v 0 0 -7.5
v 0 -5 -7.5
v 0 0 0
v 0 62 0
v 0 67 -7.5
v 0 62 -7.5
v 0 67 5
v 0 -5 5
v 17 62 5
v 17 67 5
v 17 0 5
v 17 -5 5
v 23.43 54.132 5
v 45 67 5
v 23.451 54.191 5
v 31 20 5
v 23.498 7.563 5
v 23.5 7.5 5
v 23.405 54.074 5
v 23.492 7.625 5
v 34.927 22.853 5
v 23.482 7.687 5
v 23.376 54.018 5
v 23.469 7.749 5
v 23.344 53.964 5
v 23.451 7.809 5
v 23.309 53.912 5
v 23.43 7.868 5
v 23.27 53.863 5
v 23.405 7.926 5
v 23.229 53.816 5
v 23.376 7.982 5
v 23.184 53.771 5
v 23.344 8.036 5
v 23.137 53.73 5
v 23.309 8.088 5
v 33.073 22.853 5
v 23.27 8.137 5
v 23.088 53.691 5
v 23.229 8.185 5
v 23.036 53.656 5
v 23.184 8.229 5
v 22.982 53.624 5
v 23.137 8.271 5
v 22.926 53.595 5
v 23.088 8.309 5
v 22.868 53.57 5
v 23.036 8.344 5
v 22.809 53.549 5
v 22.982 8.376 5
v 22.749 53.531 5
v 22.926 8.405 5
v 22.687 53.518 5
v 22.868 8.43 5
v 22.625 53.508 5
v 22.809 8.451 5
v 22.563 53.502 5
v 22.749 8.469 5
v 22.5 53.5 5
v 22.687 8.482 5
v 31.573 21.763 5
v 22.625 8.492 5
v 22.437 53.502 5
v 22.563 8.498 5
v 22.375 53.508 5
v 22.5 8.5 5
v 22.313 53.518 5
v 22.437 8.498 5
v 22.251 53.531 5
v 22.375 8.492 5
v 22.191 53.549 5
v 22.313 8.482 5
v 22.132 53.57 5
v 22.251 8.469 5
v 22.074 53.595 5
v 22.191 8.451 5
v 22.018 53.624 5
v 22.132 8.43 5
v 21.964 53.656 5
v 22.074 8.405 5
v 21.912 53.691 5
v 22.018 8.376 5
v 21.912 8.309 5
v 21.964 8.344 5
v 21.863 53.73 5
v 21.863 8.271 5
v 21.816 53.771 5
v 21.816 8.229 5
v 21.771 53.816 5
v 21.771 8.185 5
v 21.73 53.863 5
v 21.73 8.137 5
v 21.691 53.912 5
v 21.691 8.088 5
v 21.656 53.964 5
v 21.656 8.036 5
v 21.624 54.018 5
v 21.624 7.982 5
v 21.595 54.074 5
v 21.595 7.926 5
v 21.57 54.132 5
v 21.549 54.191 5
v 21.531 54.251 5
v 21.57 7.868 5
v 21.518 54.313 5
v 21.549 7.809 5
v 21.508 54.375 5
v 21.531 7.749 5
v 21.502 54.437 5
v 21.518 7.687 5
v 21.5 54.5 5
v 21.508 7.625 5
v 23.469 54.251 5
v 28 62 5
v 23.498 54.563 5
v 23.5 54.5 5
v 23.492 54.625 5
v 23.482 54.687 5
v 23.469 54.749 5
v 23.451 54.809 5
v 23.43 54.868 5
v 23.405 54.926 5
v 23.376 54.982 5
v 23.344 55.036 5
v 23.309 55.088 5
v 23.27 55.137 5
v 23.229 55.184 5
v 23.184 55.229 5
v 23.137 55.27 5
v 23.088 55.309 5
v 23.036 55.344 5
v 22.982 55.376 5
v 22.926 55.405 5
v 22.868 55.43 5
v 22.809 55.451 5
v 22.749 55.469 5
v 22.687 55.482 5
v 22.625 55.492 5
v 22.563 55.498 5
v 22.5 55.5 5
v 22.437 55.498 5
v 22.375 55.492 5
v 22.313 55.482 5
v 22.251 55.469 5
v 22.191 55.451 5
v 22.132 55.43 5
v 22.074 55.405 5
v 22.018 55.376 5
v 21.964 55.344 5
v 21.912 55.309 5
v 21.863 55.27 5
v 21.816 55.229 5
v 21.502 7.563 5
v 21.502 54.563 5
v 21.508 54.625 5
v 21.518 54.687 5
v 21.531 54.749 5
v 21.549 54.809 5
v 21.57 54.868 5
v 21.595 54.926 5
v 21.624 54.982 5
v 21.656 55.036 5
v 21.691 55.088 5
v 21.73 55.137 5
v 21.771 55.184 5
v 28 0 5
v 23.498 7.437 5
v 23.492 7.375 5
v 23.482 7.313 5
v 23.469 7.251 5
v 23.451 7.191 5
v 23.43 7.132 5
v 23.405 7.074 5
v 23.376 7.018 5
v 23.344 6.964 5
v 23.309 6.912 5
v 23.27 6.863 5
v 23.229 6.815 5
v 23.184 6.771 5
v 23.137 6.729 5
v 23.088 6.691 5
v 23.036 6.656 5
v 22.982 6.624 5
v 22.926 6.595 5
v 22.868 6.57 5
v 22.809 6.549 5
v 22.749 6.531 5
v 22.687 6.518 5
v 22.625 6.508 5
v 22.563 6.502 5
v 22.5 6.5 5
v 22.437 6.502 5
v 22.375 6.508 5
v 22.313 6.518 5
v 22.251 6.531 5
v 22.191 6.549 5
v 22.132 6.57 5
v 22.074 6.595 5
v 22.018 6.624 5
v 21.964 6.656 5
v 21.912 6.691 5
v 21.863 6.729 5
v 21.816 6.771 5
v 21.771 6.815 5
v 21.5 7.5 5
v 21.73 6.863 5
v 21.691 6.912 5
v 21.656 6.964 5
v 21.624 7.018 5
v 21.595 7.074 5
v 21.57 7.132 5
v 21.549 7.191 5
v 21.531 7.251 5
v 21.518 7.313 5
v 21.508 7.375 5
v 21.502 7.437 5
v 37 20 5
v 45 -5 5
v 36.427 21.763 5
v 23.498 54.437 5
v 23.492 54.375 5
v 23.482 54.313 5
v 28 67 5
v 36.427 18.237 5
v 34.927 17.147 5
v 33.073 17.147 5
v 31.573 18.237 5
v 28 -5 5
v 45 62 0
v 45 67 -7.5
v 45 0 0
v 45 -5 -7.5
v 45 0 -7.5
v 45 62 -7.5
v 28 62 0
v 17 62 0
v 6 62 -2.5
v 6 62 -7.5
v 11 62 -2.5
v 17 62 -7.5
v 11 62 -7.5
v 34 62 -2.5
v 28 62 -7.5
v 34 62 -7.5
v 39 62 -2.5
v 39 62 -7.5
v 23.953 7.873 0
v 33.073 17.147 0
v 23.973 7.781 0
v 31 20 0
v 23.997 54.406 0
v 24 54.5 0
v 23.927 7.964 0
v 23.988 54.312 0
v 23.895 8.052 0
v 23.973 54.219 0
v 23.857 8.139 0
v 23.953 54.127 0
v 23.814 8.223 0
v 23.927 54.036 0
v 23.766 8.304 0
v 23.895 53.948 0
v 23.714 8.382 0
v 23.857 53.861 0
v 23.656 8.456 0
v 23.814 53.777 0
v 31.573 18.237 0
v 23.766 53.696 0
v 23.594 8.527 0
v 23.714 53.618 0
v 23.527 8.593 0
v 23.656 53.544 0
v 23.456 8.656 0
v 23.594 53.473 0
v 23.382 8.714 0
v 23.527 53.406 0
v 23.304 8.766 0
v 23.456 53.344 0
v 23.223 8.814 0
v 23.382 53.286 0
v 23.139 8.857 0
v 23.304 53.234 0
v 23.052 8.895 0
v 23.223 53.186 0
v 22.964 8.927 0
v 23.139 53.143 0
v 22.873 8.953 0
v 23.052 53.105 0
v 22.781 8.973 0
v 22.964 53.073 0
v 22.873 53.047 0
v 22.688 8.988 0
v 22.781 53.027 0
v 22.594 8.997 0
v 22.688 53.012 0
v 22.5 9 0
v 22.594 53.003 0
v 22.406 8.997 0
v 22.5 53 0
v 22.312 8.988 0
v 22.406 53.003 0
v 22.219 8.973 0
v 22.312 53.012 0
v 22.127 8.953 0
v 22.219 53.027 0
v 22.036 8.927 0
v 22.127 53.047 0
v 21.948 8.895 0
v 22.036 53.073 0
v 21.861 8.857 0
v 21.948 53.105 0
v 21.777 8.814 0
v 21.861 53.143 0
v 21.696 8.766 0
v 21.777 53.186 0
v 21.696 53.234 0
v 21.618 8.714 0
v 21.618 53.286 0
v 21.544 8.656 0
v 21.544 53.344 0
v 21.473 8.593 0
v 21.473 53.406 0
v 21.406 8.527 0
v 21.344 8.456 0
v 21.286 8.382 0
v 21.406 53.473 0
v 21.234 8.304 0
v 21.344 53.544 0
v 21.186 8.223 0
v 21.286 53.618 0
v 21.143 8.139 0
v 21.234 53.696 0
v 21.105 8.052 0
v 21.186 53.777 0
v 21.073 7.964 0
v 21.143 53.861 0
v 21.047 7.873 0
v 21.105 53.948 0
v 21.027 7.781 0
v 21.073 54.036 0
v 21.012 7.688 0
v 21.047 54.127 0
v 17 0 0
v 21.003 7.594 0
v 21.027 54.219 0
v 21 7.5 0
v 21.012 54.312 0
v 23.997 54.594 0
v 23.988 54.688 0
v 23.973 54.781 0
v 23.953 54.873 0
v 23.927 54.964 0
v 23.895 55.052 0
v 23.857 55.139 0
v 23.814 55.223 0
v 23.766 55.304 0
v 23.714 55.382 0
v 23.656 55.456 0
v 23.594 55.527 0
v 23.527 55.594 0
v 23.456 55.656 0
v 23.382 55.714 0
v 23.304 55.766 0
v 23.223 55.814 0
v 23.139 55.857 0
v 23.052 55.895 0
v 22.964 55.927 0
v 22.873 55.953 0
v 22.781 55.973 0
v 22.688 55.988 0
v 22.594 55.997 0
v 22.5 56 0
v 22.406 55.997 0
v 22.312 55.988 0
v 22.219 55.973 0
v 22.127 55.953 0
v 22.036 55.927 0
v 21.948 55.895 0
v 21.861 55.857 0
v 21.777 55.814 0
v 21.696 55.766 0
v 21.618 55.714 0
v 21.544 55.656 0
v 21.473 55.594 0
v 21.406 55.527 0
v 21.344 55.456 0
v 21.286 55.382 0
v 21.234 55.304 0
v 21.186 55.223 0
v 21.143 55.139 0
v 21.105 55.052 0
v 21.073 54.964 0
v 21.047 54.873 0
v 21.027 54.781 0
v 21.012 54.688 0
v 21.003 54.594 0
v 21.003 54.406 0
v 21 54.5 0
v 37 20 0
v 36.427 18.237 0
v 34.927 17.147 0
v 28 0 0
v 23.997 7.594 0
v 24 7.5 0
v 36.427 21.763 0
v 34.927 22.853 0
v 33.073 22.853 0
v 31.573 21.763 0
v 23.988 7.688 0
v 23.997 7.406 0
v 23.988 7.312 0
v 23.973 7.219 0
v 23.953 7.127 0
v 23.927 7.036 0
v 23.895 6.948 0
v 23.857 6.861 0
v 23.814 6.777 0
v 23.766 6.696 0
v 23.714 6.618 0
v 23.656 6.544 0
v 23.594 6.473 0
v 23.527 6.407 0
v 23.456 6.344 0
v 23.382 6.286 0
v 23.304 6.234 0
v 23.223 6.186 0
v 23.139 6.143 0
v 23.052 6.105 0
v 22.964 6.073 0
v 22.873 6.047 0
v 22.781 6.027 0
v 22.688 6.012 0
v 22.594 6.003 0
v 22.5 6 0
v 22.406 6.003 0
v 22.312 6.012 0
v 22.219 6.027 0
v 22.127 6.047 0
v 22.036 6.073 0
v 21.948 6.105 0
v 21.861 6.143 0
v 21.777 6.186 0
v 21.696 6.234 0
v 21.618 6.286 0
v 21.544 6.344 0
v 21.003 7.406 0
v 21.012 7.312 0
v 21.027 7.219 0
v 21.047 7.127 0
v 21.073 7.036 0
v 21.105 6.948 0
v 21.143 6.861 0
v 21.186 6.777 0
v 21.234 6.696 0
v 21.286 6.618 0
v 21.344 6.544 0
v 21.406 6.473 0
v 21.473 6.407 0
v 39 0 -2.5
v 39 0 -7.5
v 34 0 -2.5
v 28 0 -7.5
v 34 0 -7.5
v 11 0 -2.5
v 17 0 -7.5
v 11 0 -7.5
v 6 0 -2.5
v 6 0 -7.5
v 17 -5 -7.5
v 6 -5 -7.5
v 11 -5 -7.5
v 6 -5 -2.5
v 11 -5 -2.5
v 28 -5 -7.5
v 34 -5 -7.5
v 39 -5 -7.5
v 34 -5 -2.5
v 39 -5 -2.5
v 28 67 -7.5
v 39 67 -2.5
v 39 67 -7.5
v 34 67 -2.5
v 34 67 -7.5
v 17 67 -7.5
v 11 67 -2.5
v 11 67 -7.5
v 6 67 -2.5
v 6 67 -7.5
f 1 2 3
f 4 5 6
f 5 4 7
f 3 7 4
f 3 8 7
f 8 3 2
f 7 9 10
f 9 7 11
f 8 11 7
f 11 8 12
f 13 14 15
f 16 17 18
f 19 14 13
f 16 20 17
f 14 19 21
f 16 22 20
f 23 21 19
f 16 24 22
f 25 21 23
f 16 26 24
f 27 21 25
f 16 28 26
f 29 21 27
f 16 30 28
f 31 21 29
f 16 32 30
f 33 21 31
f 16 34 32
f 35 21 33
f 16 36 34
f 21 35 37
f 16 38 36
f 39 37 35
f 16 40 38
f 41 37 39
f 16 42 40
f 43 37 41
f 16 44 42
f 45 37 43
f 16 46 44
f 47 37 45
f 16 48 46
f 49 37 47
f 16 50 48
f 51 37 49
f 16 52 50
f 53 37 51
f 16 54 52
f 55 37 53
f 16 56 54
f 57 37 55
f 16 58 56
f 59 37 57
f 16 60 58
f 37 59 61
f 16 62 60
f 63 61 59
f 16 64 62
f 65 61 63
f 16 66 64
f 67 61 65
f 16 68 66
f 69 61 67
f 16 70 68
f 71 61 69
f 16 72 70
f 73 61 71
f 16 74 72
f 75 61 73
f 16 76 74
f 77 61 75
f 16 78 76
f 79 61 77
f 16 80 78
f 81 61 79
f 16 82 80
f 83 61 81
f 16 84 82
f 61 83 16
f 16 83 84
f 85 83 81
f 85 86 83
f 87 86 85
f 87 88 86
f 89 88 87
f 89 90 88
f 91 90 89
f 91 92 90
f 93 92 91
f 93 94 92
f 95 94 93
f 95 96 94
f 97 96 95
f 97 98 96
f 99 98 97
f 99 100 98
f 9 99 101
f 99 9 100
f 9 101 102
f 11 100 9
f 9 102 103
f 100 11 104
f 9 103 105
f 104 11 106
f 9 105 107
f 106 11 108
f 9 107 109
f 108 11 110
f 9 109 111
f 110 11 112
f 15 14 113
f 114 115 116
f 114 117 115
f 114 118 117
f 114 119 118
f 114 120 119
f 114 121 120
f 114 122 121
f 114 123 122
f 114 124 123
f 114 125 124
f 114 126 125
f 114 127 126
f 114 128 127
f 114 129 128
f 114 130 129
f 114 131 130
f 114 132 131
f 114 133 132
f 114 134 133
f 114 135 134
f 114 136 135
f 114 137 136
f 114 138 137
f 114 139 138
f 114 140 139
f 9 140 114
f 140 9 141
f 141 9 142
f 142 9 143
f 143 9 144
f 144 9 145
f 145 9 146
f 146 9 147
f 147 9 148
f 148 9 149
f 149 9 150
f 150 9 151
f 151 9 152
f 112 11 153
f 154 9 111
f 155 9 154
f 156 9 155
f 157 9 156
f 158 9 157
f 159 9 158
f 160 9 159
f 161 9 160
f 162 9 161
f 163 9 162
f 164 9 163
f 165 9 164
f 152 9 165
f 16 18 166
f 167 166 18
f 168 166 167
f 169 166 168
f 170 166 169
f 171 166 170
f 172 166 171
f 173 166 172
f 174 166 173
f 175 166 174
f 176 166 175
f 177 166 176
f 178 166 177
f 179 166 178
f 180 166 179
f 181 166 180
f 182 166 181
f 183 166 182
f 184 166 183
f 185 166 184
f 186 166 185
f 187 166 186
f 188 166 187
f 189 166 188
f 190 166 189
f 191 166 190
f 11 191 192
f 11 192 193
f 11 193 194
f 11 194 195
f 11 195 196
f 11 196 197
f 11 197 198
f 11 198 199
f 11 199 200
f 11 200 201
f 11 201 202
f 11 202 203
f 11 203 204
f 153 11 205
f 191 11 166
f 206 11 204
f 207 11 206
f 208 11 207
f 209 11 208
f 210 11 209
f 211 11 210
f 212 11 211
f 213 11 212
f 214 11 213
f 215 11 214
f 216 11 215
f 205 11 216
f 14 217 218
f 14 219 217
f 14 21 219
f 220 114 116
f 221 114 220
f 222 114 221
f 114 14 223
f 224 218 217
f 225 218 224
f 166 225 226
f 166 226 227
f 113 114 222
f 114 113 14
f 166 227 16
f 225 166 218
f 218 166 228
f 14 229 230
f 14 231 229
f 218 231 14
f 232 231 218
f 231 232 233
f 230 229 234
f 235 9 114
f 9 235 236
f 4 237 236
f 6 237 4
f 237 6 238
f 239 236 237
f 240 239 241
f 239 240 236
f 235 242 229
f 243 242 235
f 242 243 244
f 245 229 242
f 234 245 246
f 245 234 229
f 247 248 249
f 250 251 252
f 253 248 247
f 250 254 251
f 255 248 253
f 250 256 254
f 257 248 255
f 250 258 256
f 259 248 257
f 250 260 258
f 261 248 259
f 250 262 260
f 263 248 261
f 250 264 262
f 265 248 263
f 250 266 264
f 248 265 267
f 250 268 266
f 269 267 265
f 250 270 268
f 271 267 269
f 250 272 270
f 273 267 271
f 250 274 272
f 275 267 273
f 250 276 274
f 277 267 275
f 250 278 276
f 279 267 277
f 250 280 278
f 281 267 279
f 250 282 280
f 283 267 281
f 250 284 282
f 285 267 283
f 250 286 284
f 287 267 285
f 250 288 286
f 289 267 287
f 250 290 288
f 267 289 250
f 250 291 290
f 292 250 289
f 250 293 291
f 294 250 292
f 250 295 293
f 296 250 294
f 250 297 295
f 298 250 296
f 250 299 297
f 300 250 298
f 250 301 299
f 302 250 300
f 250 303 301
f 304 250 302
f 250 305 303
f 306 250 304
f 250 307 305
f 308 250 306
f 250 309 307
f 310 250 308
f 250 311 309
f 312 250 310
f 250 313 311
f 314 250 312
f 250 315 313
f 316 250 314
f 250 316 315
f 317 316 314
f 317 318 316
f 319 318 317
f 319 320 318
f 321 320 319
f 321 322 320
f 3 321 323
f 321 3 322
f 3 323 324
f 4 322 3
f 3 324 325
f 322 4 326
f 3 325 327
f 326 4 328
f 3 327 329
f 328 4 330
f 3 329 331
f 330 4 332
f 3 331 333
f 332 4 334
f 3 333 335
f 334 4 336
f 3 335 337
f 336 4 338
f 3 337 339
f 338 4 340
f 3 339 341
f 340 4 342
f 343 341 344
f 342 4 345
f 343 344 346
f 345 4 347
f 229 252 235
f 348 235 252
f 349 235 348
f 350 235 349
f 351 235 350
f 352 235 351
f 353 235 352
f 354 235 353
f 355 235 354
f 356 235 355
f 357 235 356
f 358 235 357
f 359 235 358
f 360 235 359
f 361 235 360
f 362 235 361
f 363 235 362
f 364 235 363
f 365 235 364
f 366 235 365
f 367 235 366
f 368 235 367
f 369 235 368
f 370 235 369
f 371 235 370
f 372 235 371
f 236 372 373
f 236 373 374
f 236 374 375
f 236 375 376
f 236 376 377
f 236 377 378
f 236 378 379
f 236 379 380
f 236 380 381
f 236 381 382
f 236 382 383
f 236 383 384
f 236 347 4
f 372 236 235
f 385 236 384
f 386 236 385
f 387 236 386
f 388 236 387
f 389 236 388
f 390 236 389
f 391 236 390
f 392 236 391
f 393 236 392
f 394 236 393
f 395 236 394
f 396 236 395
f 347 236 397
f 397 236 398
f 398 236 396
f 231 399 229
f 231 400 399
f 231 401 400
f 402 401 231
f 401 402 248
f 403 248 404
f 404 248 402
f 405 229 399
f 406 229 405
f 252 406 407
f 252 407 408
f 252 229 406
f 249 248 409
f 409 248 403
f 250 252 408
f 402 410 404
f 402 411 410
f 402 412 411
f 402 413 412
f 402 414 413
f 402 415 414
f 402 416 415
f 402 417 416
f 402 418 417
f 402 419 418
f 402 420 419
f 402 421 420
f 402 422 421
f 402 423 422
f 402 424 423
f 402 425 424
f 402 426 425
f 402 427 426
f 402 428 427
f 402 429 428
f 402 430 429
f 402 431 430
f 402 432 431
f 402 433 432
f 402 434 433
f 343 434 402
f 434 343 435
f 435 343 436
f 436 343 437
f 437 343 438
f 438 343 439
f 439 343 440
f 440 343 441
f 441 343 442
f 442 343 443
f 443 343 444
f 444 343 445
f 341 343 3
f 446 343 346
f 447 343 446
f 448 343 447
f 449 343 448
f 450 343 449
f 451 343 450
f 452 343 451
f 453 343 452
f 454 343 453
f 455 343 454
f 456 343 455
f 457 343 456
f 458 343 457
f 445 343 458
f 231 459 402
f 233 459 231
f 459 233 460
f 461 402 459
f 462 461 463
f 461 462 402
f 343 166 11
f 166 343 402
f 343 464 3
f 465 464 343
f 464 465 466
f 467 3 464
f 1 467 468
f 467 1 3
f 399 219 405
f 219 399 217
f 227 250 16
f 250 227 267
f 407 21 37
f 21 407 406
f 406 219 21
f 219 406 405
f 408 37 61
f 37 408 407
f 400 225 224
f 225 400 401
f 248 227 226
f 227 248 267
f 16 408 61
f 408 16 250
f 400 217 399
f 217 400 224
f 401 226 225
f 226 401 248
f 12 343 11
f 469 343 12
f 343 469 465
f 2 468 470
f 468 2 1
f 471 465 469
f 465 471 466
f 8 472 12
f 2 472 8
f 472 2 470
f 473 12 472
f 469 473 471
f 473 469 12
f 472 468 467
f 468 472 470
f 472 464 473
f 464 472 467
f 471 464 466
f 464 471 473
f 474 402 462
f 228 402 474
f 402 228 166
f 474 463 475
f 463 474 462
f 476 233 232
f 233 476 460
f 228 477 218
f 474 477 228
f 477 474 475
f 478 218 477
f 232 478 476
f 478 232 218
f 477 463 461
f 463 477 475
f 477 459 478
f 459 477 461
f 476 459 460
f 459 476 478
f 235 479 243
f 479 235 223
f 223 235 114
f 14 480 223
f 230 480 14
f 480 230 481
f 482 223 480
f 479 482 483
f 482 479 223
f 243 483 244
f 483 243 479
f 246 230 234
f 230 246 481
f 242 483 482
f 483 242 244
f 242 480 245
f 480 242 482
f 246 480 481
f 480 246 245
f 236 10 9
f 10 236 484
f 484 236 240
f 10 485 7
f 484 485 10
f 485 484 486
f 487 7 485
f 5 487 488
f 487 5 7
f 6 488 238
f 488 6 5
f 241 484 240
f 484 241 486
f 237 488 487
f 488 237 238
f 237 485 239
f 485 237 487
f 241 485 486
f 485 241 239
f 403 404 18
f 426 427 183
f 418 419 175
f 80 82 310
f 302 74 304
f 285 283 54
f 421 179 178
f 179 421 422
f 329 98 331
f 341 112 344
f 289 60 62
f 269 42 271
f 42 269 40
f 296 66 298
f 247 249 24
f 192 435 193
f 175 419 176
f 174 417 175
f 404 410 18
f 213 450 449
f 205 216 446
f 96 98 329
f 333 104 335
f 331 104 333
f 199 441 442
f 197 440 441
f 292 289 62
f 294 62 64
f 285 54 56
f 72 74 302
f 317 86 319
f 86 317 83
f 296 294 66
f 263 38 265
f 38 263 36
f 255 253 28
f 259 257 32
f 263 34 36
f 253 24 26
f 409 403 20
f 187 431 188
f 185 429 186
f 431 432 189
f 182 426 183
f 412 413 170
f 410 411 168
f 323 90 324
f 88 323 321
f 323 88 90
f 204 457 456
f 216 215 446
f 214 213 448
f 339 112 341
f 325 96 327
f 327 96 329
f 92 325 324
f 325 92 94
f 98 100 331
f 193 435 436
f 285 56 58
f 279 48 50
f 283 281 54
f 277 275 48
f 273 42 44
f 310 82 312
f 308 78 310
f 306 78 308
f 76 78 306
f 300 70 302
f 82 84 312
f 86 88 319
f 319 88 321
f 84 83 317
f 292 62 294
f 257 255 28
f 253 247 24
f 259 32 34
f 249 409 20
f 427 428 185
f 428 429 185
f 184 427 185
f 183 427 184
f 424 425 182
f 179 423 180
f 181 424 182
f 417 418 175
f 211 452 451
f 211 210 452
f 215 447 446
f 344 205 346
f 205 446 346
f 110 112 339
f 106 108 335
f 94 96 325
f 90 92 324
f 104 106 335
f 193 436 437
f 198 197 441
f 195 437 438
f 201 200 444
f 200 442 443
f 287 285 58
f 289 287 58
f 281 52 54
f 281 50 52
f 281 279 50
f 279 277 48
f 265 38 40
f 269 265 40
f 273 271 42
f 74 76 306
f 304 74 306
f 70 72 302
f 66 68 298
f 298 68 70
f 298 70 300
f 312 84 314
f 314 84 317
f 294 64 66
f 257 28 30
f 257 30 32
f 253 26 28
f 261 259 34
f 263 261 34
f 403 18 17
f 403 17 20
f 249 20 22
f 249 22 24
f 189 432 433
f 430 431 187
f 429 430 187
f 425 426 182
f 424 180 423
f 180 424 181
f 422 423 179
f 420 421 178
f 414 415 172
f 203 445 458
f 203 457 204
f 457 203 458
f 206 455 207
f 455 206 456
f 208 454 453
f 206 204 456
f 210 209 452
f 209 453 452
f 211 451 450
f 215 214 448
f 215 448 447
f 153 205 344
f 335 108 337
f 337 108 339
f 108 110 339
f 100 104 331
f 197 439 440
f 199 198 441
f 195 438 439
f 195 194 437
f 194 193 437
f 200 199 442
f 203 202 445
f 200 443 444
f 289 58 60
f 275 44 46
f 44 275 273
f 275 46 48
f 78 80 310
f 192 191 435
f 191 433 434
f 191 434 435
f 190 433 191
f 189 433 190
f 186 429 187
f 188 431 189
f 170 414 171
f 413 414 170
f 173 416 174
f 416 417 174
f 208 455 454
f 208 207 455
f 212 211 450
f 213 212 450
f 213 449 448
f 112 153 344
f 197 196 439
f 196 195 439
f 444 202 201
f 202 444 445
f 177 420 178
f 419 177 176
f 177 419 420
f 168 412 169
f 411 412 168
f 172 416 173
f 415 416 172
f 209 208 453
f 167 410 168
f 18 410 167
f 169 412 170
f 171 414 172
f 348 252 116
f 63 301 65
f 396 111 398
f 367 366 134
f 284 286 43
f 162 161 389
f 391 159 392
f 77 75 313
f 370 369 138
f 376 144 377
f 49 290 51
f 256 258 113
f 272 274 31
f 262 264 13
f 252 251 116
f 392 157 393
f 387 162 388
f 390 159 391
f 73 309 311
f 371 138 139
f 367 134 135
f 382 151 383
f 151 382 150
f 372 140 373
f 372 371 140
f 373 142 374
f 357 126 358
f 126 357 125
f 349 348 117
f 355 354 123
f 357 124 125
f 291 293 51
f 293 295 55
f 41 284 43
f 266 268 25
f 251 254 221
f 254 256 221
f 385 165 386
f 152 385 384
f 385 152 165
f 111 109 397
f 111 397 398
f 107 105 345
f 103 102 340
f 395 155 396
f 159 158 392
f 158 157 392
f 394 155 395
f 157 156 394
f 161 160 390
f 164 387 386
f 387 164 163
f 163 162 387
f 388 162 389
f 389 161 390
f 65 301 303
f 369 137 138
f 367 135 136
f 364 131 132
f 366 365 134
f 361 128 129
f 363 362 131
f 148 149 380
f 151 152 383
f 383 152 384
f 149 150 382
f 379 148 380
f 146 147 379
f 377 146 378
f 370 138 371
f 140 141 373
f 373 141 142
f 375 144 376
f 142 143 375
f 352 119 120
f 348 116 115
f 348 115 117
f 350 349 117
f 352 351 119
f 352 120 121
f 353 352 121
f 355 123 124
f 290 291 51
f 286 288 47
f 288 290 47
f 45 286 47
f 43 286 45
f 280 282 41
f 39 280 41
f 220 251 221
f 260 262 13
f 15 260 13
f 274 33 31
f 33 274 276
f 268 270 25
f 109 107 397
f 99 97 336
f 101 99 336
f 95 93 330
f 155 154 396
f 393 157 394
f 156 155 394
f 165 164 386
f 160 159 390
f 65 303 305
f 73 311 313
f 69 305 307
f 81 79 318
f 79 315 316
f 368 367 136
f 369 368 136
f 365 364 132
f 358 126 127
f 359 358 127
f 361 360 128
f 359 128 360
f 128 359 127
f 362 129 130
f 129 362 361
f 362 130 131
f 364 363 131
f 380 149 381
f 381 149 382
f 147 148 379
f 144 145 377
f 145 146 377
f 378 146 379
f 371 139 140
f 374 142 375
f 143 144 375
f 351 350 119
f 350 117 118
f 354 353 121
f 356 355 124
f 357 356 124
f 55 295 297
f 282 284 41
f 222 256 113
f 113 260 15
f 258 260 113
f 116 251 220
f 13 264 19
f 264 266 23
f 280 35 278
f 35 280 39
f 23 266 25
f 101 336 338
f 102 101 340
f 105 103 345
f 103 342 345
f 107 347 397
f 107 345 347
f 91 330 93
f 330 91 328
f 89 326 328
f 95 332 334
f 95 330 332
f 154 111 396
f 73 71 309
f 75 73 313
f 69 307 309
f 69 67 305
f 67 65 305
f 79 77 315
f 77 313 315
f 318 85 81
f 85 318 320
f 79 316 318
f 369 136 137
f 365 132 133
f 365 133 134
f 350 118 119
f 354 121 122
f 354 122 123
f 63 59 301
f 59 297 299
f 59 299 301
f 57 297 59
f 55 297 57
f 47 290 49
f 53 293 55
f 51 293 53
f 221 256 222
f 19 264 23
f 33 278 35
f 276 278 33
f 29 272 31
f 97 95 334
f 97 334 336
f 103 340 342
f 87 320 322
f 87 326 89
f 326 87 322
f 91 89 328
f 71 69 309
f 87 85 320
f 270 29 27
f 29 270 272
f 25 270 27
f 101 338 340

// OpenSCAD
/*------------------------ Parameters ------------------------*/
length = 62; 
width = 45; // actual dimension is 60mm, just added wiggle room 
thickness = 5; 

light_port_width = 3;

screw_base_container_width = 17;
screw_base_container_height = 7.50;

screw_port_width = 5; 
screw_port_height = 5;

mount_width = 1.5;
mount_offset = 7.5;

/*------------------------ Prototpyes ------------------------*/
ssr_plate();

/*------------------------ Modules ------------------------*/
module ssr_plate() {
    difference() {
        union() {
            bottom();
            connection_protector();
            translate([width - screw_base_container_width, 0, 0]) {
                connection_protector();
            }
            translate([width - screw_base_container_width, length+thickness, 0]) {
                connection_protector();
            }
            translate([0, length+thickness, 0]) {
                connection_protector();
            }
        }
        translate([width/2, mount_offset, 0]) {
            cylinder(thickness, mount_width, $fn=100);
        }
        translate([width/2, length - mount_offset, 0]) {
            cylinder(thickness, mount_width, $fn=100);
        }    
    }
}

module bottom() {
    difference() {
        cube([width, length, thickness]);
        translate([34,20,0]) {
            cylinder(thickness, light_port_width, light_port_width); // cutout for the signal led
        }
    }
}

// centered: 4th Quadrent
module connection_protector() {
    difference() {
        translate([0, -thickness, -screw_base_container_height]) {
            cube([screw_base_container_width, thickness, screw_base_container_height + thickness]);
        }
        screw_terminal_cutout();
    }
    
}

module screw_terminal_cutout() {
    translate([(screw_base_container_width -screw_port_width)/2, -thickness, -screw_base_container_height]) {
        cube([screw_port_width, thickness, screw_port_height]);
    }
}
